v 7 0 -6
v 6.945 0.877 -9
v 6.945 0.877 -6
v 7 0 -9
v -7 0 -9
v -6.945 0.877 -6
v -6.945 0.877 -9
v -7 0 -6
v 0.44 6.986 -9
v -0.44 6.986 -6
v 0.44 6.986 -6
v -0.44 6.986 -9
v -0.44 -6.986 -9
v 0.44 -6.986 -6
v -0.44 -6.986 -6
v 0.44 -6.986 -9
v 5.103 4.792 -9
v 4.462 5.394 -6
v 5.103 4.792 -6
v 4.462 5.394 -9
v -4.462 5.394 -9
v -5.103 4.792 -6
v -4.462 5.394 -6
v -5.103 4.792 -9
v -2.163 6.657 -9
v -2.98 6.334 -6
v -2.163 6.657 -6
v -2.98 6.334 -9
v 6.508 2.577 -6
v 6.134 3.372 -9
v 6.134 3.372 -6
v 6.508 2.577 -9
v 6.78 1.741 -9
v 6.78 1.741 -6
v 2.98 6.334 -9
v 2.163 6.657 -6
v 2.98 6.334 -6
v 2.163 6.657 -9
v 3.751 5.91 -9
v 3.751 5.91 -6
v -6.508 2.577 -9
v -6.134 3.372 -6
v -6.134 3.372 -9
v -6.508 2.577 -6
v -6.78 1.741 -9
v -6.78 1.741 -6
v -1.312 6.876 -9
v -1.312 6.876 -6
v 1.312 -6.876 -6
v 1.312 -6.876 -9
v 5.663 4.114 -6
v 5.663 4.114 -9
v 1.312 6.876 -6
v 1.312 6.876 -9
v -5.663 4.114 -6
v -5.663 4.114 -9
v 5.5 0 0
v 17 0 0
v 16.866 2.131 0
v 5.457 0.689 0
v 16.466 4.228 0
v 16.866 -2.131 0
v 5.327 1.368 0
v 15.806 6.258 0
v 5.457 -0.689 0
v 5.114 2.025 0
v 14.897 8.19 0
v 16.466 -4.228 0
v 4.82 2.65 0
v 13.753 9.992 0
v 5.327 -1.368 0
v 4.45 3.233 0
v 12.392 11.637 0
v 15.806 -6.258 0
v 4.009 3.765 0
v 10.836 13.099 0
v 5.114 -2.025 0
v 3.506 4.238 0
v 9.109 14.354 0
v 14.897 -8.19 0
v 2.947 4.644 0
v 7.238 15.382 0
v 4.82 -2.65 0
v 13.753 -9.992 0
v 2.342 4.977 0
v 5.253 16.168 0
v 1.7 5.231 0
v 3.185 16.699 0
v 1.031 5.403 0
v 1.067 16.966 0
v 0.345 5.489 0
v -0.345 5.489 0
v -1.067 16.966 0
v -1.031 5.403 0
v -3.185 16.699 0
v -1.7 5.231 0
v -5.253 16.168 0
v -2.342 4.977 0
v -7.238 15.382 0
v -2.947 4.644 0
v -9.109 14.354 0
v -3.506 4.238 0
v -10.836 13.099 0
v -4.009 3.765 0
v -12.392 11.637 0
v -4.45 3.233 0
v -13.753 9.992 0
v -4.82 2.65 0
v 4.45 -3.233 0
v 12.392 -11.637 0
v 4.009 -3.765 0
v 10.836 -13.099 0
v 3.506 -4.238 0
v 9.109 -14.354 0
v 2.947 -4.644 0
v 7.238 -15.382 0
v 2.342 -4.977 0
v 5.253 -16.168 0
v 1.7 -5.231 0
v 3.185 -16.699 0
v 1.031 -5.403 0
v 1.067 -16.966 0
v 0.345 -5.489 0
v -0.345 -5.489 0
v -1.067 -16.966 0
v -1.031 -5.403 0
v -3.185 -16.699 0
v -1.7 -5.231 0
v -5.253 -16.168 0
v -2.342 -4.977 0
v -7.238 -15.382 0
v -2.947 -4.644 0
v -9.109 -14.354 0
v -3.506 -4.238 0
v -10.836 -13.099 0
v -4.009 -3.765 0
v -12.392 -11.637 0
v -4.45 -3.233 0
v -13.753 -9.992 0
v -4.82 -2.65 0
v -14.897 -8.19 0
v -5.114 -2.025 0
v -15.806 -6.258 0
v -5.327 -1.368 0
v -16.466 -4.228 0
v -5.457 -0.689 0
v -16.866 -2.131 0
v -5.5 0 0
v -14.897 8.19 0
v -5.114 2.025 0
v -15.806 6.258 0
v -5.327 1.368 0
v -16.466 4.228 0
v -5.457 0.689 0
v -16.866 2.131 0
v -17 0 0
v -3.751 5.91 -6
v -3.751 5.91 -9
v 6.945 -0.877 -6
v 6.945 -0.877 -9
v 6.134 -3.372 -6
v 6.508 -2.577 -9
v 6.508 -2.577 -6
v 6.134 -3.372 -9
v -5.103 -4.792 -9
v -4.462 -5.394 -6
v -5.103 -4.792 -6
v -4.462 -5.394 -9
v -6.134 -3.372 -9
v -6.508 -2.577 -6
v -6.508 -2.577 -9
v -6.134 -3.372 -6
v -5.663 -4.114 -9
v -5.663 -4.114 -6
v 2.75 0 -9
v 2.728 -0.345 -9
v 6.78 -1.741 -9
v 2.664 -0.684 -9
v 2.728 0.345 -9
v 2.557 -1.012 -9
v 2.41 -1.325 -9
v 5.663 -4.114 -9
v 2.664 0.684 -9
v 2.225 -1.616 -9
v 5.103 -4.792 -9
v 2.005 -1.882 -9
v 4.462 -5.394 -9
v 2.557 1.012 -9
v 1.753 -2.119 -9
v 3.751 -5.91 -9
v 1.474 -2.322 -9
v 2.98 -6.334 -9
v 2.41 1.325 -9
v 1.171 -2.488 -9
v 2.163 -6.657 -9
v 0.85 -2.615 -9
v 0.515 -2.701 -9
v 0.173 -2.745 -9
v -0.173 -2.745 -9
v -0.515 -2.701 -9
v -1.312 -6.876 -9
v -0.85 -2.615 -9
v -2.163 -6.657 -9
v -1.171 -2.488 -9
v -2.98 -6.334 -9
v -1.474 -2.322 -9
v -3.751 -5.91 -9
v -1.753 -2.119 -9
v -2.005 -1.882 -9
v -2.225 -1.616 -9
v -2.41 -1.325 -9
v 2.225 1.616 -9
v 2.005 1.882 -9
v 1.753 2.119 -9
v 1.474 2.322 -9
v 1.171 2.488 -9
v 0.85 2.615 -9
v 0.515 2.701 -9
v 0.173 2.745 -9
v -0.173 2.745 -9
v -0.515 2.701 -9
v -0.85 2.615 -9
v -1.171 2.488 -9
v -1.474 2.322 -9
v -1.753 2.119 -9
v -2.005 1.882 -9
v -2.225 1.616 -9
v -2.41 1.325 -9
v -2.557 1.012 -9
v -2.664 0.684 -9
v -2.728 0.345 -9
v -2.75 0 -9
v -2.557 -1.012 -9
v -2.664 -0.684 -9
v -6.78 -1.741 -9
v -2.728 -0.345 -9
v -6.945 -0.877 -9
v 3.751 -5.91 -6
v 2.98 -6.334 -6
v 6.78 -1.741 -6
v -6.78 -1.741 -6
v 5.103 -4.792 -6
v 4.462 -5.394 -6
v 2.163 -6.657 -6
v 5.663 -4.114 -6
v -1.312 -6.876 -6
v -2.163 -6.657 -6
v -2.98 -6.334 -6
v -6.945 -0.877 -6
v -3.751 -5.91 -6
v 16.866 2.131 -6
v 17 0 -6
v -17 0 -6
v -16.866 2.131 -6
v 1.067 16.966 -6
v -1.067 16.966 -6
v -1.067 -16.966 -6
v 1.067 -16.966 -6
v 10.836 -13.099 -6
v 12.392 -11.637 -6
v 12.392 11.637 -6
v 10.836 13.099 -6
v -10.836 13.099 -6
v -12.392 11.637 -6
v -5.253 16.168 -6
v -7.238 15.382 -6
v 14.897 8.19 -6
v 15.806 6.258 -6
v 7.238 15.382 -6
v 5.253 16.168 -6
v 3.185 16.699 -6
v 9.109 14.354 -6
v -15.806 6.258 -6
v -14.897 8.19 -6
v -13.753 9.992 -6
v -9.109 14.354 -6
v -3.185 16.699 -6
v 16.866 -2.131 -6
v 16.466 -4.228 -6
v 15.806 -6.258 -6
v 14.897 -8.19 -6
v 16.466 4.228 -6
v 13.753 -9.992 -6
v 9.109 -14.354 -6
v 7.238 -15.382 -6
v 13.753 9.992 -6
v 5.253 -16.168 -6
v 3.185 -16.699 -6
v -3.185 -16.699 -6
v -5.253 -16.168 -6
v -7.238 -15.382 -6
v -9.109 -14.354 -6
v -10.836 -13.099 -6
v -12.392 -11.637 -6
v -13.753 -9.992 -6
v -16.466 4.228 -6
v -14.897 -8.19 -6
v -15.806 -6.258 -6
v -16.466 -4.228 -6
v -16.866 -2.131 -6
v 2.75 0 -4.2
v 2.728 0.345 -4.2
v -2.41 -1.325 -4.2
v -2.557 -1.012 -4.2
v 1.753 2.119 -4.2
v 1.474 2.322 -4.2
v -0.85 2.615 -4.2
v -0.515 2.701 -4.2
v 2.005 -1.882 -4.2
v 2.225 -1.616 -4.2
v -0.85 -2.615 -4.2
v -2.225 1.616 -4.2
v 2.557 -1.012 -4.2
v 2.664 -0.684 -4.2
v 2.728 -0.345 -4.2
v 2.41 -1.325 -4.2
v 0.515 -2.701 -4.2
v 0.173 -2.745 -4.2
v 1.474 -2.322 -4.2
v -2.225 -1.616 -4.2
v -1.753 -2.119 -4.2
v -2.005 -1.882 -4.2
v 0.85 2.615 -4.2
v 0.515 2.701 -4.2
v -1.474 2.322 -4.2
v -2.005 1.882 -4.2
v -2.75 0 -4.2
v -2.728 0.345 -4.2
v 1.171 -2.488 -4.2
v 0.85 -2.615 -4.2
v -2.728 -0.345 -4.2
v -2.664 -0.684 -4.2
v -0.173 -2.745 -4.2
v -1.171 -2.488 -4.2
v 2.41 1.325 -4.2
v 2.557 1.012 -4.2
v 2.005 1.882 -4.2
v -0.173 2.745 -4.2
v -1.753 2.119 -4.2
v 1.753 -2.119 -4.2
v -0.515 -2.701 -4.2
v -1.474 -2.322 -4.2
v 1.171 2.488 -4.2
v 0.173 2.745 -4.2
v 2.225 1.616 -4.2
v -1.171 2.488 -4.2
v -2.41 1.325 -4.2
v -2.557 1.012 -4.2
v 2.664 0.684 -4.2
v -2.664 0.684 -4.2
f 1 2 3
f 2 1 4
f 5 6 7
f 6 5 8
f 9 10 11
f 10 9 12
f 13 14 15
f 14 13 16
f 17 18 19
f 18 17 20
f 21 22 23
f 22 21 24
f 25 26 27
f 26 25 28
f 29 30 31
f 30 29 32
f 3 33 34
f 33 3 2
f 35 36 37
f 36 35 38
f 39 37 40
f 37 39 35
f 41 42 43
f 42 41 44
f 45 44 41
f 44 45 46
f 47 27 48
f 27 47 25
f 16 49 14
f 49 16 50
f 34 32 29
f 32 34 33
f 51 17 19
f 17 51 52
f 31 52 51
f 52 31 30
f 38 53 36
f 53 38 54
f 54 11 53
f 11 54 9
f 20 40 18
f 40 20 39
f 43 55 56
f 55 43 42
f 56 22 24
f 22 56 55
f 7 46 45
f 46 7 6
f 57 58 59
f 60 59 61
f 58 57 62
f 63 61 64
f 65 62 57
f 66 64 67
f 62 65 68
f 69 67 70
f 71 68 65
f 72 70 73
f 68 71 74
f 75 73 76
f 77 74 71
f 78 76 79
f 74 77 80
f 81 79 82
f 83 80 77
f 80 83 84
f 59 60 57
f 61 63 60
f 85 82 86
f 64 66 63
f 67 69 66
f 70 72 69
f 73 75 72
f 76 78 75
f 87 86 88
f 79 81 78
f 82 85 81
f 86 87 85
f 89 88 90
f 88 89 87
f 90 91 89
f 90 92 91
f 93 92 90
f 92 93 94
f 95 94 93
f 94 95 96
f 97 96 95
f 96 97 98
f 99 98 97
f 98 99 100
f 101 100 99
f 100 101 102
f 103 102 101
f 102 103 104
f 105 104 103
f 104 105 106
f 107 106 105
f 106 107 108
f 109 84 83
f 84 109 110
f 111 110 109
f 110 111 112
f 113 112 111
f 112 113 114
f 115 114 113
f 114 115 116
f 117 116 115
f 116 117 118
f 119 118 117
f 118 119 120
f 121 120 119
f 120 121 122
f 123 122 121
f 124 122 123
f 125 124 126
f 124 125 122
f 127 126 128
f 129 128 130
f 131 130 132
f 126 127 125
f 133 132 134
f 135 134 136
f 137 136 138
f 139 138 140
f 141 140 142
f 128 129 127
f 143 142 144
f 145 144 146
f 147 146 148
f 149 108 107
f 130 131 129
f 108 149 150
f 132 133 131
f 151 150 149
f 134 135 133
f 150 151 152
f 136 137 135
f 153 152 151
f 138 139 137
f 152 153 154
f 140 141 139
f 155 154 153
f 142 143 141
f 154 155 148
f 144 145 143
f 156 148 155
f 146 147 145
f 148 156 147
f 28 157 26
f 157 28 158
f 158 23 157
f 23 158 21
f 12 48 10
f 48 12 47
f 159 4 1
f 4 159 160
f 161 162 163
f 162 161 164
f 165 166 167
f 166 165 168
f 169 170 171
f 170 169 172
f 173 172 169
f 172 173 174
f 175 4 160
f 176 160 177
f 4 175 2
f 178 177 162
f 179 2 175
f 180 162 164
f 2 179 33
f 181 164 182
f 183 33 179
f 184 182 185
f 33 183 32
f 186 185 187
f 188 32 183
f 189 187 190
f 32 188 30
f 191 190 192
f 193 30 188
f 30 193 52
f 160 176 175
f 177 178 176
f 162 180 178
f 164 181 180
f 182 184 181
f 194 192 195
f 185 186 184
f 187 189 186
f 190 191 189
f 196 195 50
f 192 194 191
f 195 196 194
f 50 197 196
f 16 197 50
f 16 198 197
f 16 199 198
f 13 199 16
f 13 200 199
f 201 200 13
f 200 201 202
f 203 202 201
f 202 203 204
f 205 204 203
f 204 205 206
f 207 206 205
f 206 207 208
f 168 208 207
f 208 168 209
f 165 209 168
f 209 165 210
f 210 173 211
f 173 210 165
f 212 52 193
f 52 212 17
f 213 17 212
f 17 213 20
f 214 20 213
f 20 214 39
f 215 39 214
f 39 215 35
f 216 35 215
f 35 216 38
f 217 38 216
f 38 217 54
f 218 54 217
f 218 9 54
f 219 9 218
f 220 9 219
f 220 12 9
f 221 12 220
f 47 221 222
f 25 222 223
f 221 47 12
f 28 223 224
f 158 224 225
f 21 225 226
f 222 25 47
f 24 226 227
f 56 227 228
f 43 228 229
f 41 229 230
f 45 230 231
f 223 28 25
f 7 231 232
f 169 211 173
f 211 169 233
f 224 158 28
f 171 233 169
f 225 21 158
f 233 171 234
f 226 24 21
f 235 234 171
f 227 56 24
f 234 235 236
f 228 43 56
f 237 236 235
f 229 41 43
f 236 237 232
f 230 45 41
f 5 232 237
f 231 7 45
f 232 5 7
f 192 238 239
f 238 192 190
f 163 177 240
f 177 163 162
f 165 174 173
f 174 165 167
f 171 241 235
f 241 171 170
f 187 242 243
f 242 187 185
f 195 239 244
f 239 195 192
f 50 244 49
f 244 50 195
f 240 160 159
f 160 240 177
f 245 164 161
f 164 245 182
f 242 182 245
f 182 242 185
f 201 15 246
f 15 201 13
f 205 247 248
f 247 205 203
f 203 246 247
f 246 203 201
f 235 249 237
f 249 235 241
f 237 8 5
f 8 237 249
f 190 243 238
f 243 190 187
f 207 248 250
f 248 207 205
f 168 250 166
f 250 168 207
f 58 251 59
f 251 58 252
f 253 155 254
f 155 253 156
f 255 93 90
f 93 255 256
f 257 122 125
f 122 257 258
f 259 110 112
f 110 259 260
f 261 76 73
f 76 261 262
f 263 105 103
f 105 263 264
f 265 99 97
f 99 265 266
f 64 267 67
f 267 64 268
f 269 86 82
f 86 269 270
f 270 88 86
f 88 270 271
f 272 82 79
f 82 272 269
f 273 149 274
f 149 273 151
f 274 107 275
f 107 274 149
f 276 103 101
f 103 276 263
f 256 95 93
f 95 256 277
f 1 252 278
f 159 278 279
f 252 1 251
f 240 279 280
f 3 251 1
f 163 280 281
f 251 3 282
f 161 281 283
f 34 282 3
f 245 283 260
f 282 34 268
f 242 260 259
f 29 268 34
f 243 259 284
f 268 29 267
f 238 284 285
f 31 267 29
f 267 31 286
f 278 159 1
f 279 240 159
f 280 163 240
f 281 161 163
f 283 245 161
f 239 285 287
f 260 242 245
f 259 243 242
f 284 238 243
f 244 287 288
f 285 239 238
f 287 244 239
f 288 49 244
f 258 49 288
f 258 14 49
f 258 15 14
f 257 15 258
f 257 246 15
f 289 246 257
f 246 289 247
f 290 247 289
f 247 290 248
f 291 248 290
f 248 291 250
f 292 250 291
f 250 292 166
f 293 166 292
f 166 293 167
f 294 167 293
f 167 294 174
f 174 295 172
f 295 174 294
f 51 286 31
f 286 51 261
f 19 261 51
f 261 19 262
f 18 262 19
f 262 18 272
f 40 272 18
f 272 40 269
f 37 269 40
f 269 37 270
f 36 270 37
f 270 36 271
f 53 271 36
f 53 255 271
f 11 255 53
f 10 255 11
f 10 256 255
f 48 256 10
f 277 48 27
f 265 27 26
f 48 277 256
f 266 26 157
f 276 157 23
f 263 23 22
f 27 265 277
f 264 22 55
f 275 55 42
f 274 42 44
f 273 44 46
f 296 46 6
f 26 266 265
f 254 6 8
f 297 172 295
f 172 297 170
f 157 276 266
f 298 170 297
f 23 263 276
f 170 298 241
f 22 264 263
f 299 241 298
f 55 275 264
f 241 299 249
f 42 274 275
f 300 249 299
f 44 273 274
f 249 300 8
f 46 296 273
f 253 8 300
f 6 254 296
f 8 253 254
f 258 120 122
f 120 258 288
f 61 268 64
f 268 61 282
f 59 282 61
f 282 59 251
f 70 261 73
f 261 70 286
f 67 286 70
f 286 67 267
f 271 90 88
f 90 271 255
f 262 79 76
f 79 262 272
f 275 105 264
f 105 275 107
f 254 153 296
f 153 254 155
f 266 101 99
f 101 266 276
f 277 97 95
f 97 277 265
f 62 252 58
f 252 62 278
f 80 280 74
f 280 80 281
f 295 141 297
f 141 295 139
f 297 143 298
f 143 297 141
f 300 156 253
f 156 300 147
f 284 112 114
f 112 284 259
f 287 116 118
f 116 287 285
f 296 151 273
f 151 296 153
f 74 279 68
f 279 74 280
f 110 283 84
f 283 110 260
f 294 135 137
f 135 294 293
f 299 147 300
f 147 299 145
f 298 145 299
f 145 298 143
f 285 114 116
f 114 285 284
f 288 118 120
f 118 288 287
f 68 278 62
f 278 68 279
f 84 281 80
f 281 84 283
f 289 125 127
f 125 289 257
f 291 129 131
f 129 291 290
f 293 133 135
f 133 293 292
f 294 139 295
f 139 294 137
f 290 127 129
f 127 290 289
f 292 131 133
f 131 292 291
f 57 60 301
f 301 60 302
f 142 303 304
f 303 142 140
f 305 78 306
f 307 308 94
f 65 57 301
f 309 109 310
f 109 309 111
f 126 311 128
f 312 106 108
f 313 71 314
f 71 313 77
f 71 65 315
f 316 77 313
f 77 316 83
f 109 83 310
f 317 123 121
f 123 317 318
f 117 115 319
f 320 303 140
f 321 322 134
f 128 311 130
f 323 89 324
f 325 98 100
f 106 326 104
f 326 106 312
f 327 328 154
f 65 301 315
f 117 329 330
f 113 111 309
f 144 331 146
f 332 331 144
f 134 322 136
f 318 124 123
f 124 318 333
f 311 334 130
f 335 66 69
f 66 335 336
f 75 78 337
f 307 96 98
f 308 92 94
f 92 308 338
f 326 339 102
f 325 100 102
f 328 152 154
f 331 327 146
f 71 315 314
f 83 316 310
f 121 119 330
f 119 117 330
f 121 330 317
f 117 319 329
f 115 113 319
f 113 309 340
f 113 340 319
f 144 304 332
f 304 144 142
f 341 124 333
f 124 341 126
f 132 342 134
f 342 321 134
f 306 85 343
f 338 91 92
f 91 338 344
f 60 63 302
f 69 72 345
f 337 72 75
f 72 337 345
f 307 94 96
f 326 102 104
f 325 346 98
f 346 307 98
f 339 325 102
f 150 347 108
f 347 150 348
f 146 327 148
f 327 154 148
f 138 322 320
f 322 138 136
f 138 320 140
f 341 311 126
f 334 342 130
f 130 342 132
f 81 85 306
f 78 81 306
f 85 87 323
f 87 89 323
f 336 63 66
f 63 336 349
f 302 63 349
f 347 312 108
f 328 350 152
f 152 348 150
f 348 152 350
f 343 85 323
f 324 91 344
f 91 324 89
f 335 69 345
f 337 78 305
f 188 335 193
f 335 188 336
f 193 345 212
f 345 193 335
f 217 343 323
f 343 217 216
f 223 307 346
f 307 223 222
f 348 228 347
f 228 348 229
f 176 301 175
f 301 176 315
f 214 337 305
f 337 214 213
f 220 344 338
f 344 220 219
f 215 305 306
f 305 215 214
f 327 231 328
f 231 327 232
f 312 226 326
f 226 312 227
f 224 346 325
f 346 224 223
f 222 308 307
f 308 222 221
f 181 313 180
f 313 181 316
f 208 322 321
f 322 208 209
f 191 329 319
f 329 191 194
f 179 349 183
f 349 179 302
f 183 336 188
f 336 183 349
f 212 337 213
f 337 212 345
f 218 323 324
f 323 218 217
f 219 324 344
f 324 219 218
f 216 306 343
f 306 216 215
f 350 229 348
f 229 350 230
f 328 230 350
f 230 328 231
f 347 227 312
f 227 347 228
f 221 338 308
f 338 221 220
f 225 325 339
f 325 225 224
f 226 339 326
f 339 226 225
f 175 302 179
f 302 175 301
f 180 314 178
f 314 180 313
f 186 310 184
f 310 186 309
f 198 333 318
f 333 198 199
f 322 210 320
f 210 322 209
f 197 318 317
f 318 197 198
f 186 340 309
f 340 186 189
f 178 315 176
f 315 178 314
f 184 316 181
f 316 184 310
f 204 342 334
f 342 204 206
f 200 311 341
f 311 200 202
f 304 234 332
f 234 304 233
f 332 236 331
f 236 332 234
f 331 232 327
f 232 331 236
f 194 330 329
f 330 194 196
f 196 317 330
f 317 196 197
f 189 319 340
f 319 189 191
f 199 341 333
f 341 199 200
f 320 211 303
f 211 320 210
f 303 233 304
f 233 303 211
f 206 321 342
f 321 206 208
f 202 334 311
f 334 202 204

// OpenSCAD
$fn = 50;


difference() {
	union() {
		translate(v = [0, 0, -9.0000000000]) {
			cylinder(h = 9, r = 7.0000000000);
		}
		translate(v = [0, 0, -6.0000000000]) {
			cylinder(h = 6, r = 17.0000000000);
		}
	}
	union() {
		translate(v = [0, 0, 0]) {
			rotate(a = [0, 0, 0]) {
				difference() {
					union() {
						#translate(v = [0, 0, -9.0000000000]) {
							cylinder(h = 9, r = 2.2500000000);
						}
						#translate(v = [0, 0, -4.2000000000]) {
							cylinder(h = 4.2000000000, r1 = 2.7500000000, r2 = 5.5000000000);
						}
						#translate(v = [0, 0, -9.0000000000]) {
							cylinder(h = 9, r = 2.7500000000);
						}
						#translate(v = [0, 0, -9.0000000000]) {
							cylinder(h = 9, r = 2.2500000000);
						}
					}
					union();
				}
			}
		}
	}
}
